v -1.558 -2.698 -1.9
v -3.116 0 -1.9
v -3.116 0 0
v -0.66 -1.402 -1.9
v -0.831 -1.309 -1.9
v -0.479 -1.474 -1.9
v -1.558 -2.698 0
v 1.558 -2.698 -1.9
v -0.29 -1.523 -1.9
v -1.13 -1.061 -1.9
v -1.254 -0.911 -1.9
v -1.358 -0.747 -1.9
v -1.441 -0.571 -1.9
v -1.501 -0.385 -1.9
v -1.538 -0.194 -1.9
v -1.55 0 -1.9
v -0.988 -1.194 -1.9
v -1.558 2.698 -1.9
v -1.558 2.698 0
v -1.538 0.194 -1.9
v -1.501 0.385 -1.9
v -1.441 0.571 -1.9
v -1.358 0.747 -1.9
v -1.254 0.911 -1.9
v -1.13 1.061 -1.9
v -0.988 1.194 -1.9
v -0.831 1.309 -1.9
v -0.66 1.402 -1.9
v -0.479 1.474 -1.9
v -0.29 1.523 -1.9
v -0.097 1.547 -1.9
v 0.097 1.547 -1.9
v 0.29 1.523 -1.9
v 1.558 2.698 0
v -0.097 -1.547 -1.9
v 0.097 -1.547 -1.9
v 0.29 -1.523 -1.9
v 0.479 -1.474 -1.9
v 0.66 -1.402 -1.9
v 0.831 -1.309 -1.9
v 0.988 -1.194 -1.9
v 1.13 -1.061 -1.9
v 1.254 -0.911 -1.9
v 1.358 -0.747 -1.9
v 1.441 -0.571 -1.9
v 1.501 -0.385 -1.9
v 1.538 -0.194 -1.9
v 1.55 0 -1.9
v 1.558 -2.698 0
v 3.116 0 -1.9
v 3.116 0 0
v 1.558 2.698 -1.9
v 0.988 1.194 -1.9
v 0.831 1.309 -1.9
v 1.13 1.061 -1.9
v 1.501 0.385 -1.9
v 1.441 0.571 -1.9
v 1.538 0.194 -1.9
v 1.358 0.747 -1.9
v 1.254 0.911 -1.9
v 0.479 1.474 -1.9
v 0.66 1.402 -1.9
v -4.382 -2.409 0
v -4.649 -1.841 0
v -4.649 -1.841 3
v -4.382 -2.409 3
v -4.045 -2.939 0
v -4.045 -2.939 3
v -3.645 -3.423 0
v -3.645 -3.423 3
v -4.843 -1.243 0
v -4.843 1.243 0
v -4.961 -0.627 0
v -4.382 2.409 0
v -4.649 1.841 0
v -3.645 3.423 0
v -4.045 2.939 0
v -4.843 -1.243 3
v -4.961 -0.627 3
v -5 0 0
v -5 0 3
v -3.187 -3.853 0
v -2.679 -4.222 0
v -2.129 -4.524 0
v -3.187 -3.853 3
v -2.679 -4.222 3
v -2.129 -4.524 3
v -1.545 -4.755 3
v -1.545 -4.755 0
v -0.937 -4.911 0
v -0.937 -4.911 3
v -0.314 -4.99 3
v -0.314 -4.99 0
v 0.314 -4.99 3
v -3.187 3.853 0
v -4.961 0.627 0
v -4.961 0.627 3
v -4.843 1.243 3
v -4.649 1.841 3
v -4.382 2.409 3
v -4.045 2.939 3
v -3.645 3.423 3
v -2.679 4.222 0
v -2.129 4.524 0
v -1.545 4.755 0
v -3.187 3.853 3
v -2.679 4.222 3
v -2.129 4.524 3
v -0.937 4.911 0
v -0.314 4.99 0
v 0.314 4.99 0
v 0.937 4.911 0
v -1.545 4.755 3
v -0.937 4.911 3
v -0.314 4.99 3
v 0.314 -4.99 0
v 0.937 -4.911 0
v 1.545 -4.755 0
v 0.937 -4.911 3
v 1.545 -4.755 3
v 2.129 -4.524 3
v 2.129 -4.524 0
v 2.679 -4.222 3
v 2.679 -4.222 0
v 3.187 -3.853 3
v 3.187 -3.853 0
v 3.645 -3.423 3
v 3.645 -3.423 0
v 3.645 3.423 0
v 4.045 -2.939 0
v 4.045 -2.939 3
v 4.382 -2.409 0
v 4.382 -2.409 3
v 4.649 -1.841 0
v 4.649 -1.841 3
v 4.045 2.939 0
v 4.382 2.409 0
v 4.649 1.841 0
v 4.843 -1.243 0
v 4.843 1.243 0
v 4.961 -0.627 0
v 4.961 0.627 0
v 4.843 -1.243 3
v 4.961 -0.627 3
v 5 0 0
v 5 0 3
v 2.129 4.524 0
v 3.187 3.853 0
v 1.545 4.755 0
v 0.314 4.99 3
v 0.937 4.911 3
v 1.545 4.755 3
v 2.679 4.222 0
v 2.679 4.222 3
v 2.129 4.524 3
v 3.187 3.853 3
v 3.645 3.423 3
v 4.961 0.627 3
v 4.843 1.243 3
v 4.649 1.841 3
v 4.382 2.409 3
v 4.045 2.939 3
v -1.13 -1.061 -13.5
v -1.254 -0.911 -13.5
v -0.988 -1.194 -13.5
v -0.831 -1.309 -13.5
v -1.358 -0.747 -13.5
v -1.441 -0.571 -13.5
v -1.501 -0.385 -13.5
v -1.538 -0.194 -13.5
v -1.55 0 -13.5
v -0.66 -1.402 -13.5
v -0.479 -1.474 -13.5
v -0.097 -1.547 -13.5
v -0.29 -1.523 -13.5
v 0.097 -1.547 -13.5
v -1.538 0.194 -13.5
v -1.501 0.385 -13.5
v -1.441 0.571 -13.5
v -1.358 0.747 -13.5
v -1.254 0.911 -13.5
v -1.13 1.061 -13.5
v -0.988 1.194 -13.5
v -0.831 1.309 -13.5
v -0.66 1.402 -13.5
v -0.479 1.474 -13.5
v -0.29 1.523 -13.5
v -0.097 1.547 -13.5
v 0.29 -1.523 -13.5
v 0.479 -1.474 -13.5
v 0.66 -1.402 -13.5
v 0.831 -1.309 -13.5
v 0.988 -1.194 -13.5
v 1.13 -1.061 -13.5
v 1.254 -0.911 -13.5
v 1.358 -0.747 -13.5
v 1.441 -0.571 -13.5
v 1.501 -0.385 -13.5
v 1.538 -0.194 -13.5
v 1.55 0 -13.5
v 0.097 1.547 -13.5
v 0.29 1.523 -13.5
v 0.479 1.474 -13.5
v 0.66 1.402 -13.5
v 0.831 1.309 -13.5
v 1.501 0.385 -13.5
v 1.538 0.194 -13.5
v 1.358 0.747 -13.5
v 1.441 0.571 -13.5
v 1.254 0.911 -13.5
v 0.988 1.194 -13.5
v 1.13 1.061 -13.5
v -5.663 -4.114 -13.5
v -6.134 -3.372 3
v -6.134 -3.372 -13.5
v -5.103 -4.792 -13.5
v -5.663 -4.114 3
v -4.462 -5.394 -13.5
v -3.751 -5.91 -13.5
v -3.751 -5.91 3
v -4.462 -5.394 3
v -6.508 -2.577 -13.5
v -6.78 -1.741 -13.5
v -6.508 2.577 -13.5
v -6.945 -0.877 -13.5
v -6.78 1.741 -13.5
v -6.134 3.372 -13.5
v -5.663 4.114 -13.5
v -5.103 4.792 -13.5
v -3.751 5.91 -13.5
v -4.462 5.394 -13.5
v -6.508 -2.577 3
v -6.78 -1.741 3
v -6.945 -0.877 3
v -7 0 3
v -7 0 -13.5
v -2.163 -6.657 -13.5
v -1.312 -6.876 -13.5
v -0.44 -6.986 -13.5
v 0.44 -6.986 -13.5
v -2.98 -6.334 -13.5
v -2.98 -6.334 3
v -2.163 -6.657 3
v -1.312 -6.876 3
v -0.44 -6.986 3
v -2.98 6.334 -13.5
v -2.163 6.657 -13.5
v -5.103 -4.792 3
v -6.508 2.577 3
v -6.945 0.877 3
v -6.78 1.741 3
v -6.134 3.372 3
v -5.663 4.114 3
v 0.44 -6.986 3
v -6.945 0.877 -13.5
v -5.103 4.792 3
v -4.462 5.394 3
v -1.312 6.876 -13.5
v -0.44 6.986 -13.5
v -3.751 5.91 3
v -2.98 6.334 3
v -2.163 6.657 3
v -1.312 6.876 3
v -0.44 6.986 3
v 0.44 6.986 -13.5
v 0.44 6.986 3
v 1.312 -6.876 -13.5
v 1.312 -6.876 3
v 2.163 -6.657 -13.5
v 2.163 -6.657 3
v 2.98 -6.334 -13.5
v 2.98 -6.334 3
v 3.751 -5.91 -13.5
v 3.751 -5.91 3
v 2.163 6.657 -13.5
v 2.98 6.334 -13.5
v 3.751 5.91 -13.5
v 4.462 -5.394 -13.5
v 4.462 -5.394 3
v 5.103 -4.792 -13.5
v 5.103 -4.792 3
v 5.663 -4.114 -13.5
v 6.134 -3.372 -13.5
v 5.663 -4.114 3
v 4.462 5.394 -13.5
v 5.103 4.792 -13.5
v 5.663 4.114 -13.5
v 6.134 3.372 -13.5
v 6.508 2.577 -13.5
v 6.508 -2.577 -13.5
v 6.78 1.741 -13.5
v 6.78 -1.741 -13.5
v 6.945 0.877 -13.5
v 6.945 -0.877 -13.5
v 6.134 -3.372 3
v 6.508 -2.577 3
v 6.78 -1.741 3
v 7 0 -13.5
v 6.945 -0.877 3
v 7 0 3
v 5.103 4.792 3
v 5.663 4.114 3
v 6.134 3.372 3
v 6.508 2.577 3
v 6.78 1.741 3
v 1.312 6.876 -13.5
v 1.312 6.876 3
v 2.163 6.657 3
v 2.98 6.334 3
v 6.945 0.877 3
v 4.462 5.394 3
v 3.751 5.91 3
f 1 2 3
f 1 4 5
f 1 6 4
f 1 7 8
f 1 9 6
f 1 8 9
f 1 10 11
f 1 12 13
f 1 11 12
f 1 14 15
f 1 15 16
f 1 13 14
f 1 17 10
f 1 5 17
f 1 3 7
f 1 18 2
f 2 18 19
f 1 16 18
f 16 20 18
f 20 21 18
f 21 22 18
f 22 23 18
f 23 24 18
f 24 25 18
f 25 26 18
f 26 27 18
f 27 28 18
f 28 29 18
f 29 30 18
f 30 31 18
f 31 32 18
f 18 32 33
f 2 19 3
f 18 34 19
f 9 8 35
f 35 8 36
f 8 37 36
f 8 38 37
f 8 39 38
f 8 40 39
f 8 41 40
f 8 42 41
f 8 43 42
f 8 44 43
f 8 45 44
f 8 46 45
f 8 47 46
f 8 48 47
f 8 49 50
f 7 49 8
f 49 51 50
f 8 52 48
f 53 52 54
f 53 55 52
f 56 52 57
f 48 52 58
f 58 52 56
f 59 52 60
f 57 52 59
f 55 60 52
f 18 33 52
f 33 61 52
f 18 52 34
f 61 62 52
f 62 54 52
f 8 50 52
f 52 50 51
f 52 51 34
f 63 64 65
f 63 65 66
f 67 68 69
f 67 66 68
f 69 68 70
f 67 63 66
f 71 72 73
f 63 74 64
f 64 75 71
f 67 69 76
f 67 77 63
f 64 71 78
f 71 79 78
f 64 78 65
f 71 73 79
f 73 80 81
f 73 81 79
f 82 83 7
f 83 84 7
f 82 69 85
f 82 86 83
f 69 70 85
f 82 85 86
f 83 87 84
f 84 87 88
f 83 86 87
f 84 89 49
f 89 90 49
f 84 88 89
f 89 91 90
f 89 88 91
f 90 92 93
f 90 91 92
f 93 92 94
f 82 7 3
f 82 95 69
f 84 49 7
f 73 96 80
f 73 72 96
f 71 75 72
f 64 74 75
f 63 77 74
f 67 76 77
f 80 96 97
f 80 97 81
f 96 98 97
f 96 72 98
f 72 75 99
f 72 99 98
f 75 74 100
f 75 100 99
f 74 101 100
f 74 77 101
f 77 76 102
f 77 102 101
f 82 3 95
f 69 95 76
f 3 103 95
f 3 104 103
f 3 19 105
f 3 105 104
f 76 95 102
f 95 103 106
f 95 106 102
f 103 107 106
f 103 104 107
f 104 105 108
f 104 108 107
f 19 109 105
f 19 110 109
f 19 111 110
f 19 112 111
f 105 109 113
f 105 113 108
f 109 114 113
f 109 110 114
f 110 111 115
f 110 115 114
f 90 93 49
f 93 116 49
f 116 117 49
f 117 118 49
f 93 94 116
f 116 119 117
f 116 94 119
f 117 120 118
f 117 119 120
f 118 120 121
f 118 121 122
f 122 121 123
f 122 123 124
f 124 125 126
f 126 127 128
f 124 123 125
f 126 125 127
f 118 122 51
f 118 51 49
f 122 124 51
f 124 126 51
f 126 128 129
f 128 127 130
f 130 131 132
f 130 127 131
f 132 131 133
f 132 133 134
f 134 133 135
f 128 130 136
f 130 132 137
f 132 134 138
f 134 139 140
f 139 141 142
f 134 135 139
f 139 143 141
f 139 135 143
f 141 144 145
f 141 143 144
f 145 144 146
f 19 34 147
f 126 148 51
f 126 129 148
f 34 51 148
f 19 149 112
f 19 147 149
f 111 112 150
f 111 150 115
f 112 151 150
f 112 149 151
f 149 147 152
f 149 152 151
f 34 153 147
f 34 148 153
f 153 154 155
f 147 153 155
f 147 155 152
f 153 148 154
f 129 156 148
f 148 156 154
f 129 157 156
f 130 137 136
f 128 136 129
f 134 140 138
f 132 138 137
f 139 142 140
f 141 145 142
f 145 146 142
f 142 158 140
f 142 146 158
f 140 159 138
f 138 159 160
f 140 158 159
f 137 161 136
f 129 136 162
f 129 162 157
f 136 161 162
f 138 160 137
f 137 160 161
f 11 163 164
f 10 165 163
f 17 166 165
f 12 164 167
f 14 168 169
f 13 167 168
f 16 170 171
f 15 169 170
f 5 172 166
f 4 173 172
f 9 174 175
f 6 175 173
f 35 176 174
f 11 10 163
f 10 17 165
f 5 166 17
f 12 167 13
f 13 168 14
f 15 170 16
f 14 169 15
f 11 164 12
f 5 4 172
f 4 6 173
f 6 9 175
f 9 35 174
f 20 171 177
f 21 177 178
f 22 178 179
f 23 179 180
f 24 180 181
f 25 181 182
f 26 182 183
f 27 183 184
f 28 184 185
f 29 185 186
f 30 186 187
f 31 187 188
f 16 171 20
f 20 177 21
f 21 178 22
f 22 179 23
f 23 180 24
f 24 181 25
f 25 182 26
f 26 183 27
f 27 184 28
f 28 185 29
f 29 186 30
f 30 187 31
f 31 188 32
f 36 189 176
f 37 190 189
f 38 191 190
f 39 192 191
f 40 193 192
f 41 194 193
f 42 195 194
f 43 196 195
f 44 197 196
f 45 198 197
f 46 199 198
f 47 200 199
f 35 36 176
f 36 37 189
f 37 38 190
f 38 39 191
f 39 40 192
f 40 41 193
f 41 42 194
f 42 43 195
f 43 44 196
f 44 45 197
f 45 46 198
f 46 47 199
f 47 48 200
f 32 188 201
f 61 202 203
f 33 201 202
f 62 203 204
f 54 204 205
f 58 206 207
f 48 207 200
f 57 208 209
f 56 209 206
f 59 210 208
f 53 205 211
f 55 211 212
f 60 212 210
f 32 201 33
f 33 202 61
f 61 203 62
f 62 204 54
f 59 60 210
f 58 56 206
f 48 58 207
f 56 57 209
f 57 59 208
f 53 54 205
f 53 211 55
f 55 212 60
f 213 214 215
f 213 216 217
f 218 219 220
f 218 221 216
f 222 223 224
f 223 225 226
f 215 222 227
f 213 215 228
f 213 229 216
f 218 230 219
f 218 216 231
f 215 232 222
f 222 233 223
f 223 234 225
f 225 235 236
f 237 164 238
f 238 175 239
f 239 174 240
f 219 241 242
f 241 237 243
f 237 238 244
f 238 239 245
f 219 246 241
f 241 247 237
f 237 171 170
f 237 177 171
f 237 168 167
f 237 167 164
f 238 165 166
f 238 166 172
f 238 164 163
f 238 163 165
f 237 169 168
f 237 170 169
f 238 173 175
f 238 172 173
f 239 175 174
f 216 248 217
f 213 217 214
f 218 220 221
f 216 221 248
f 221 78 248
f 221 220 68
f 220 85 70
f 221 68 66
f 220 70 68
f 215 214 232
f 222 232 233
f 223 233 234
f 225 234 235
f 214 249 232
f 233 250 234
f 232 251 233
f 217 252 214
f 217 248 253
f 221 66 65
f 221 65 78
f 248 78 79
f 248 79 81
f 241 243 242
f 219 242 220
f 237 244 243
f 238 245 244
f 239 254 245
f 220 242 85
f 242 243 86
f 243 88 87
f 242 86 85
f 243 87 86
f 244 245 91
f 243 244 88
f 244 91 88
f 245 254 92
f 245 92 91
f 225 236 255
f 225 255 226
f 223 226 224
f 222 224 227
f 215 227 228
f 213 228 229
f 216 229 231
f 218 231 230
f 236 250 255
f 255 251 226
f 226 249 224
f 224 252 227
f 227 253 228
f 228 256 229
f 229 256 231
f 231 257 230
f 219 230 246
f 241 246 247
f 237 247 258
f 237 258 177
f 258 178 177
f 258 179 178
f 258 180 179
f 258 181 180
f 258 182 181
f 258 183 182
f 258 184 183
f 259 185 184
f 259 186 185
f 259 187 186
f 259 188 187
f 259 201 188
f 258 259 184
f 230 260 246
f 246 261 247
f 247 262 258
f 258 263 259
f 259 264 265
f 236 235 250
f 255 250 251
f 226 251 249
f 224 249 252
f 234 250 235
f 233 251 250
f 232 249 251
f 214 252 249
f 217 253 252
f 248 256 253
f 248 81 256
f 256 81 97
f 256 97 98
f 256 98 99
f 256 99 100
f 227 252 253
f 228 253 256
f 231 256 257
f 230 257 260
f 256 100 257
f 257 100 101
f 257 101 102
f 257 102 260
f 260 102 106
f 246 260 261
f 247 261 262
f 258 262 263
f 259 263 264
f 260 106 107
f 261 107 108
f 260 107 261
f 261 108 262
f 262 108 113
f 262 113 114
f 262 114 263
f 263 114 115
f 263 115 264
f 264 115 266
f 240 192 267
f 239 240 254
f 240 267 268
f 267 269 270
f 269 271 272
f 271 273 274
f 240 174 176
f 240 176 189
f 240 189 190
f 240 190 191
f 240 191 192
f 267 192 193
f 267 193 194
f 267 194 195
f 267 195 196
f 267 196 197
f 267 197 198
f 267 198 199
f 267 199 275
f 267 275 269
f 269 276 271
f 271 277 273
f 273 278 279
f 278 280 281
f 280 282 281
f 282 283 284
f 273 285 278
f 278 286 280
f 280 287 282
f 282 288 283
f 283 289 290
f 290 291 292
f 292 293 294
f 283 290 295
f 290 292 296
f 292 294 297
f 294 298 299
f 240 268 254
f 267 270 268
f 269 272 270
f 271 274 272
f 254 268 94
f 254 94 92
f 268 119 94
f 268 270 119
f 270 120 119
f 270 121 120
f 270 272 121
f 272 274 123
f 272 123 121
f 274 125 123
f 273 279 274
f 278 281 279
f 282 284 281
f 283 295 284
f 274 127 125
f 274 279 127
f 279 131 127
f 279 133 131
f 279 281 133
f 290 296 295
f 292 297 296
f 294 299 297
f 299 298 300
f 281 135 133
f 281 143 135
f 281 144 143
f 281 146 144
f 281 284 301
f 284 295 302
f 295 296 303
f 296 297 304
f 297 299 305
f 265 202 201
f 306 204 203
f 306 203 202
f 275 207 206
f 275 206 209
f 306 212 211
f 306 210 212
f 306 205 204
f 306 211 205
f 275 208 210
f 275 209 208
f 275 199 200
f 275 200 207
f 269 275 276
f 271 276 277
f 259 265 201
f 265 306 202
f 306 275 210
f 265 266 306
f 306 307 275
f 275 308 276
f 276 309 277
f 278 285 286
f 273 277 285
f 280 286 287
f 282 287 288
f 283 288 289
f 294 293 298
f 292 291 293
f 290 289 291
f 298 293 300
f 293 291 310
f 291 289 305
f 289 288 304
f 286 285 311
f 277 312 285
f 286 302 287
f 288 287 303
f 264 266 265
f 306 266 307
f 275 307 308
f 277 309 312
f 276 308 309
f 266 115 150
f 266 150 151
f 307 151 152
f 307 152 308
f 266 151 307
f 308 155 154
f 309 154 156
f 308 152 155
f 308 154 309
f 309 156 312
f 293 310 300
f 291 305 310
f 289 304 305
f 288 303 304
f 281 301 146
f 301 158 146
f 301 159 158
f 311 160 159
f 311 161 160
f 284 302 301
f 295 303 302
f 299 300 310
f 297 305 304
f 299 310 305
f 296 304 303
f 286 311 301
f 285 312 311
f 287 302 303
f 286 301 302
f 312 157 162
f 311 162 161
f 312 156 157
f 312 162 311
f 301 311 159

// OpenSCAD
$fn = 50;


difference() {
	union() {
		translate(v = [0, 0, -13.5000000000]) {
			cylinder(h = 16.5000000000, r = 7.0000000000);
		}
	}
	union() {
		translate(v = [0, 0, 0]) {
			rotate(a = [0, 0, 0]) {
				difference() {
					union() {
						translate(v = [0, 0, -1.9000000000]) {
							linear_extrude(height = 1.9000000000) {
								polygon(points = [[3.1158000000, 0.0000000000], [1.5579000000, 2.6983619531], [-1.5579000000, 2.6983619531], [-3.1158000000, 0.0000000000], [-1.5579000000, -2.6983619531], [1.5579000000, -2.6983619531]]);
							}
						}
					}
					union();
				}
			}
		}
		#cylinder(h = 3, r = 5.0000000000);
		#translate(v = [0, 0, -100.0000000000]) {
			cylinder(h = 200, r = 1.5500000000);
		}
	}
}
